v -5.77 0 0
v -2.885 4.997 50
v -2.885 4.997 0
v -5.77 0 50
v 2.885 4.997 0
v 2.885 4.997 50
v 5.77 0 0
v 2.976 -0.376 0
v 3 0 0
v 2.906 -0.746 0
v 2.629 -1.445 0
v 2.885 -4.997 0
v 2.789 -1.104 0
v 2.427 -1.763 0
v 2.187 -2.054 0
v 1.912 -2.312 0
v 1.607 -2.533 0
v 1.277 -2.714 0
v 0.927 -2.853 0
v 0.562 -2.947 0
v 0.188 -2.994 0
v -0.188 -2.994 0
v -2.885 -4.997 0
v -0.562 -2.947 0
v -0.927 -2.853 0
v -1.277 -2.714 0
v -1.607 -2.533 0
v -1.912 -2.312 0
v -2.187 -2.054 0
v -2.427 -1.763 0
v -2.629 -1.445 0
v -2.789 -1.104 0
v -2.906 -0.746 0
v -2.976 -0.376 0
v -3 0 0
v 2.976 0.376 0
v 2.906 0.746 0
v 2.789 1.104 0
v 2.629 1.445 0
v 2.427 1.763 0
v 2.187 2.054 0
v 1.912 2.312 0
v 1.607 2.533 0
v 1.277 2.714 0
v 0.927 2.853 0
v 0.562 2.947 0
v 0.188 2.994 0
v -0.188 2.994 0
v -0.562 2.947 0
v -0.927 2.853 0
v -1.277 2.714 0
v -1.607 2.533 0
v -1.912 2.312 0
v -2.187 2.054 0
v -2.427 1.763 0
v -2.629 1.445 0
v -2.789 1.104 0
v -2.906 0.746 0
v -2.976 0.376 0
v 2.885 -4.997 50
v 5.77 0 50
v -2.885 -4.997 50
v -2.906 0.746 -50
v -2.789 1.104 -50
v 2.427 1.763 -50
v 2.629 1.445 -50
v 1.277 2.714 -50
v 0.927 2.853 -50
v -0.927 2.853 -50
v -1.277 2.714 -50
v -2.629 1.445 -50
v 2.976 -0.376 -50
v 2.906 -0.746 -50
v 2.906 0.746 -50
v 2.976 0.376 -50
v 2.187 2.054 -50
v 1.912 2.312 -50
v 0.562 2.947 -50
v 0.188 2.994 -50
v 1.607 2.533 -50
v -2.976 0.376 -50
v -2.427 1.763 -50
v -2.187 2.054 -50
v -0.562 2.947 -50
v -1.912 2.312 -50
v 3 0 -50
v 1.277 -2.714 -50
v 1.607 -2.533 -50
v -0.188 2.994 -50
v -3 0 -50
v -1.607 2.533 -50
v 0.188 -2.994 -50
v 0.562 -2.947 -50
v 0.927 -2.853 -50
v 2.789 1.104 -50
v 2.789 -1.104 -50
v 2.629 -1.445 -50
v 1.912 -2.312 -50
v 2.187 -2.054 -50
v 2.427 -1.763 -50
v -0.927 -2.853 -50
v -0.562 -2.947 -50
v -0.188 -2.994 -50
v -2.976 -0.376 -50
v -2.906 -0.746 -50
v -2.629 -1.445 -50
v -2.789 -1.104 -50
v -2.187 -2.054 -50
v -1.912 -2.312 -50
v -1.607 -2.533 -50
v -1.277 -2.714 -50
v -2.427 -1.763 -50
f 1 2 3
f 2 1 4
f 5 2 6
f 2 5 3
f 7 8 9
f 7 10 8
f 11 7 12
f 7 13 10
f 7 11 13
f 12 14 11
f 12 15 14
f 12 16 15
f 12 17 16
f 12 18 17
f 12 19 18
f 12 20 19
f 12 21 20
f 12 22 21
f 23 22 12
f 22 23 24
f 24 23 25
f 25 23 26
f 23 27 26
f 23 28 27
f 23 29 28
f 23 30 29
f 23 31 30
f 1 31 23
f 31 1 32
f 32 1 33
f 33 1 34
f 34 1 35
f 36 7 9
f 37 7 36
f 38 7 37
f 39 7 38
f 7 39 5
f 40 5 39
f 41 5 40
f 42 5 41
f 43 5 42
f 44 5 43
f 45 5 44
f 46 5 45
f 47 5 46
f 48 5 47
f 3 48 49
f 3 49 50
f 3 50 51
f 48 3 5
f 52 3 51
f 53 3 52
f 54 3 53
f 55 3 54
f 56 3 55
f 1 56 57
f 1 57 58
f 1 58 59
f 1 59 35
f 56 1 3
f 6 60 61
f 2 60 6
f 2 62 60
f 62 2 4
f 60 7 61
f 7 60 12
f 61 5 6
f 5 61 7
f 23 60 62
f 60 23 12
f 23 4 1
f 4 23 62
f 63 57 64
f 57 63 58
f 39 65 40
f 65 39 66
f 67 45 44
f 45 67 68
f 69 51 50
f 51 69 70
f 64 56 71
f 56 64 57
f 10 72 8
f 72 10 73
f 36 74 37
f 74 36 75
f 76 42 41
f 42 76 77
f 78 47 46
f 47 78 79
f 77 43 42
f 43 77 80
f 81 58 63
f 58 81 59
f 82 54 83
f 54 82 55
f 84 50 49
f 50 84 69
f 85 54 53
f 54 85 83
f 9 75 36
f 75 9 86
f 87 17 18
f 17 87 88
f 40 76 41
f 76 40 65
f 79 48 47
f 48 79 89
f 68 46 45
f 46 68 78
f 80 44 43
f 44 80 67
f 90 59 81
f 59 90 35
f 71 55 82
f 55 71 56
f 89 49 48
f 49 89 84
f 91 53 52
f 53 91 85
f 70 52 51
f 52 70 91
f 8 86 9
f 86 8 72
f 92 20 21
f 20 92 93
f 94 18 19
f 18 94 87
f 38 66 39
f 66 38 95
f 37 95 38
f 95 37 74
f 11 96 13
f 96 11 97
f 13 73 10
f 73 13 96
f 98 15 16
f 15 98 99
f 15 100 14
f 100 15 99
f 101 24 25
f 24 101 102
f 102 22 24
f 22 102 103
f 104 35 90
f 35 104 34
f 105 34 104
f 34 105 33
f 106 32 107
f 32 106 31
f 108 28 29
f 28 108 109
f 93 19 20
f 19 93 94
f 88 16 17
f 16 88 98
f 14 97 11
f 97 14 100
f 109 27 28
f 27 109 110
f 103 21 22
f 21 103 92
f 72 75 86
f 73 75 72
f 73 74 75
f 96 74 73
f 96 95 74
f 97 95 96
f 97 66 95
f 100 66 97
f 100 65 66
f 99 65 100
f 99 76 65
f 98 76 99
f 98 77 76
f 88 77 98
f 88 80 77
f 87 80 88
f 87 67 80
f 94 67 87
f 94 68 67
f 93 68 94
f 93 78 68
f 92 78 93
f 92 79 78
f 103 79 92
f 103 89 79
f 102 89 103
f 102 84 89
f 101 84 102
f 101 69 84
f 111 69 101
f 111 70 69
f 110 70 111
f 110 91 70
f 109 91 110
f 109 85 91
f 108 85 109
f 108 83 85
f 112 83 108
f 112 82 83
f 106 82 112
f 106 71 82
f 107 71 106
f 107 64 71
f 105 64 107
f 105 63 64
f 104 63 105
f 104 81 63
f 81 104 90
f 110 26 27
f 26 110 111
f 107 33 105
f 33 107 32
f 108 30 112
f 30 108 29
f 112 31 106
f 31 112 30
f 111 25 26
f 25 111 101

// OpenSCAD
$fn = 50;


difference() {
	union() {
		translate(v = [0, 0, 0]) {
			rotate(a = [0, 0, 0]) {
				translate(v = [0, 0, 0]) {
					rotate(a = [0, 0, 0]) {
						linear_extrude(height = 50) {
							polygon(points = [[5.7700000000, 0.0000000000], [2.8850000000, 4.9969665798], [-2.8850000000, 4.9969665798], [-5.7700000000, 0.0000000000], [-2.8850000000, -4.9969665798], [2.8850000000, -4.9969665798]]);
						}
					}
				}
			}
		}
		translate(v = [0, 0, -50]) {
			rotate(a = [0, 0, 0]) {
				cylinder(h = 50, r = 3.0000000000);
			}
		}
	}
	union();
}
